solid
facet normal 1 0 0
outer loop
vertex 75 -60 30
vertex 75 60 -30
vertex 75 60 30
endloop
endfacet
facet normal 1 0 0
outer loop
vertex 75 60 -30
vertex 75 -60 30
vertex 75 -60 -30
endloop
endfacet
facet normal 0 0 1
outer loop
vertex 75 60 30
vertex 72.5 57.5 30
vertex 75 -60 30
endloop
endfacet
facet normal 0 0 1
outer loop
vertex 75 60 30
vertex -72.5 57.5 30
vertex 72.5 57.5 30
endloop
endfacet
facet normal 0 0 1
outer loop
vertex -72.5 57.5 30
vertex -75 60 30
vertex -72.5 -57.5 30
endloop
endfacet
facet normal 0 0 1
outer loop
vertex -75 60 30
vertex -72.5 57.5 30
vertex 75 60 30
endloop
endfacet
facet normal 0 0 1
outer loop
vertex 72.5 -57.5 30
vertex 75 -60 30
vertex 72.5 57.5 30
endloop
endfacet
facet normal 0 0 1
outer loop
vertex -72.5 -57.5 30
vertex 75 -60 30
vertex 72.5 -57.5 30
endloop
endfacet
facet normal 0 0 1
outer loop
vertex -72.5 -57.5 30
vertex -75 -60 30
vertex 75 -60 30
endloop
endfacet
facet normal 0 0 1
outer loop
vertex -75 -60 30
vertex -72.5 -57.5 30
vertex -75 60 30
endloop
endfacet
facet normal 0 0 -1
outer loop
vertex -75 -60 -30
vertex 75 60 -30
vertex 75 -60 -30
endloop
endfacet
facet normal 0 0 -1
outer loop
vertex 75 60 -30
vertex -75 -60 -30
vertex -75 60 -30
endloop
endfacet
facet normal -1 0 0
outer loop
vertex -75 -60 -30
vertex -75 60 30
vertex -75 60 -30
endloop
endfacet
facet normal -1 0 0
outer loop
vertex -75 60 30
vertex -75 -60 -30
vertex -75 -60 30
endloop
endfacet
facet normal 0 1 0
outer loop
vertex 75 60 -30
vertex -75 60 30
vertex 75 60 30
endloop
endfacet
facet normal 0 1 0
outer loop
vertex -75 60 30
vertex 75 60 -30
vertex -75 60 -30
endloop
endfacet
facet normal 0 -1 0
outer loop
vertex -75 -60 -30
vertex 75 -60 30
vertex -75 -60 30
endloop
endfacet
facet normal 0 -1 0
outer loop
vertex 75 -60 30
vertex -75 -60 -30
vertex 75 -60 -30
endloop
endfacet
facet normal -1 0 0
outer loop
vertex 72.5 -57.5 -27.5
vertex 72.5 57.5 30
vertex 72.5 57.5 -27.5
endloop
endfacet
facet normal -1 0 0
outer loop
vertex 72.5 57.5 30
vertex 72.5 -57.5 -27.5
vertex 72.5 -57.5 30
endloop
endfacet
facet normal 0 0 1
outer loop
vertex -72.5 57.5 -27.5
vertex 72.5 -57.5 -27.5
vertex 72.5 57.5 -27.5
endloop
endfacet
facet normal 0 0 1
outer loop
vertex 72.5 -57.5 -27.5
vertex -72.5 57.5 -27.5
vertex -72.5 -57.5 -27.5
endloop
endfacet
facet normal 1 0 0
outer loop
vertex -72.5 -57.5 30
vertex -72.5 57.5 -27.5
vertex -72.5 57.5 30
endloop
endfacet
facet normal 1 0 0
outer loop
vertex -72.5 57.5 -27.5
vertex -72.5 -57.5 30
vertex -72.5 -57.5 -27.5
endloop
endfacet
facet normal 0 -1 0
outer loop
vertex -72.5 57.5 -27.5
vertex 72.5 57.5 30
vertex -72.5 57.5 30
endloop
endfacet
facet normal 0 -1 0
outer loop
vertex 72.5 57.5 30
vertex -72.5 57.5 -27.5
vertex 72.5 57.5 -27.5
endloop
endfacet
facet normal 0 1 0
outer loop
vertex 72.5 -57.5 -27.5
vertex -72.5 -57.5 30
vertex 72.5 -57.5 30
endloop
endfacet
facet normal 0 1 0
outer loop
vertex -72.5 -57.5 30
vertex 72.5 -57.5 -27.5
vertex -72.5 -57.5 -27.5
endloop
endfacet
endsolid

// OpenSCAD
// ========================================
// a 150 x 120 x 60 mm enclosure with 2.5 mm wall thickness
// NeuroCAD canonical IR; dimensions are millimetres
// ========================================
$fn = 48;

difference() {
  cube(size=[150, 120, 60], center=true);
  translate([0, 0, 1.35]) {
    cube(size=[145, 115, 57.7], center=true);
  }
}
